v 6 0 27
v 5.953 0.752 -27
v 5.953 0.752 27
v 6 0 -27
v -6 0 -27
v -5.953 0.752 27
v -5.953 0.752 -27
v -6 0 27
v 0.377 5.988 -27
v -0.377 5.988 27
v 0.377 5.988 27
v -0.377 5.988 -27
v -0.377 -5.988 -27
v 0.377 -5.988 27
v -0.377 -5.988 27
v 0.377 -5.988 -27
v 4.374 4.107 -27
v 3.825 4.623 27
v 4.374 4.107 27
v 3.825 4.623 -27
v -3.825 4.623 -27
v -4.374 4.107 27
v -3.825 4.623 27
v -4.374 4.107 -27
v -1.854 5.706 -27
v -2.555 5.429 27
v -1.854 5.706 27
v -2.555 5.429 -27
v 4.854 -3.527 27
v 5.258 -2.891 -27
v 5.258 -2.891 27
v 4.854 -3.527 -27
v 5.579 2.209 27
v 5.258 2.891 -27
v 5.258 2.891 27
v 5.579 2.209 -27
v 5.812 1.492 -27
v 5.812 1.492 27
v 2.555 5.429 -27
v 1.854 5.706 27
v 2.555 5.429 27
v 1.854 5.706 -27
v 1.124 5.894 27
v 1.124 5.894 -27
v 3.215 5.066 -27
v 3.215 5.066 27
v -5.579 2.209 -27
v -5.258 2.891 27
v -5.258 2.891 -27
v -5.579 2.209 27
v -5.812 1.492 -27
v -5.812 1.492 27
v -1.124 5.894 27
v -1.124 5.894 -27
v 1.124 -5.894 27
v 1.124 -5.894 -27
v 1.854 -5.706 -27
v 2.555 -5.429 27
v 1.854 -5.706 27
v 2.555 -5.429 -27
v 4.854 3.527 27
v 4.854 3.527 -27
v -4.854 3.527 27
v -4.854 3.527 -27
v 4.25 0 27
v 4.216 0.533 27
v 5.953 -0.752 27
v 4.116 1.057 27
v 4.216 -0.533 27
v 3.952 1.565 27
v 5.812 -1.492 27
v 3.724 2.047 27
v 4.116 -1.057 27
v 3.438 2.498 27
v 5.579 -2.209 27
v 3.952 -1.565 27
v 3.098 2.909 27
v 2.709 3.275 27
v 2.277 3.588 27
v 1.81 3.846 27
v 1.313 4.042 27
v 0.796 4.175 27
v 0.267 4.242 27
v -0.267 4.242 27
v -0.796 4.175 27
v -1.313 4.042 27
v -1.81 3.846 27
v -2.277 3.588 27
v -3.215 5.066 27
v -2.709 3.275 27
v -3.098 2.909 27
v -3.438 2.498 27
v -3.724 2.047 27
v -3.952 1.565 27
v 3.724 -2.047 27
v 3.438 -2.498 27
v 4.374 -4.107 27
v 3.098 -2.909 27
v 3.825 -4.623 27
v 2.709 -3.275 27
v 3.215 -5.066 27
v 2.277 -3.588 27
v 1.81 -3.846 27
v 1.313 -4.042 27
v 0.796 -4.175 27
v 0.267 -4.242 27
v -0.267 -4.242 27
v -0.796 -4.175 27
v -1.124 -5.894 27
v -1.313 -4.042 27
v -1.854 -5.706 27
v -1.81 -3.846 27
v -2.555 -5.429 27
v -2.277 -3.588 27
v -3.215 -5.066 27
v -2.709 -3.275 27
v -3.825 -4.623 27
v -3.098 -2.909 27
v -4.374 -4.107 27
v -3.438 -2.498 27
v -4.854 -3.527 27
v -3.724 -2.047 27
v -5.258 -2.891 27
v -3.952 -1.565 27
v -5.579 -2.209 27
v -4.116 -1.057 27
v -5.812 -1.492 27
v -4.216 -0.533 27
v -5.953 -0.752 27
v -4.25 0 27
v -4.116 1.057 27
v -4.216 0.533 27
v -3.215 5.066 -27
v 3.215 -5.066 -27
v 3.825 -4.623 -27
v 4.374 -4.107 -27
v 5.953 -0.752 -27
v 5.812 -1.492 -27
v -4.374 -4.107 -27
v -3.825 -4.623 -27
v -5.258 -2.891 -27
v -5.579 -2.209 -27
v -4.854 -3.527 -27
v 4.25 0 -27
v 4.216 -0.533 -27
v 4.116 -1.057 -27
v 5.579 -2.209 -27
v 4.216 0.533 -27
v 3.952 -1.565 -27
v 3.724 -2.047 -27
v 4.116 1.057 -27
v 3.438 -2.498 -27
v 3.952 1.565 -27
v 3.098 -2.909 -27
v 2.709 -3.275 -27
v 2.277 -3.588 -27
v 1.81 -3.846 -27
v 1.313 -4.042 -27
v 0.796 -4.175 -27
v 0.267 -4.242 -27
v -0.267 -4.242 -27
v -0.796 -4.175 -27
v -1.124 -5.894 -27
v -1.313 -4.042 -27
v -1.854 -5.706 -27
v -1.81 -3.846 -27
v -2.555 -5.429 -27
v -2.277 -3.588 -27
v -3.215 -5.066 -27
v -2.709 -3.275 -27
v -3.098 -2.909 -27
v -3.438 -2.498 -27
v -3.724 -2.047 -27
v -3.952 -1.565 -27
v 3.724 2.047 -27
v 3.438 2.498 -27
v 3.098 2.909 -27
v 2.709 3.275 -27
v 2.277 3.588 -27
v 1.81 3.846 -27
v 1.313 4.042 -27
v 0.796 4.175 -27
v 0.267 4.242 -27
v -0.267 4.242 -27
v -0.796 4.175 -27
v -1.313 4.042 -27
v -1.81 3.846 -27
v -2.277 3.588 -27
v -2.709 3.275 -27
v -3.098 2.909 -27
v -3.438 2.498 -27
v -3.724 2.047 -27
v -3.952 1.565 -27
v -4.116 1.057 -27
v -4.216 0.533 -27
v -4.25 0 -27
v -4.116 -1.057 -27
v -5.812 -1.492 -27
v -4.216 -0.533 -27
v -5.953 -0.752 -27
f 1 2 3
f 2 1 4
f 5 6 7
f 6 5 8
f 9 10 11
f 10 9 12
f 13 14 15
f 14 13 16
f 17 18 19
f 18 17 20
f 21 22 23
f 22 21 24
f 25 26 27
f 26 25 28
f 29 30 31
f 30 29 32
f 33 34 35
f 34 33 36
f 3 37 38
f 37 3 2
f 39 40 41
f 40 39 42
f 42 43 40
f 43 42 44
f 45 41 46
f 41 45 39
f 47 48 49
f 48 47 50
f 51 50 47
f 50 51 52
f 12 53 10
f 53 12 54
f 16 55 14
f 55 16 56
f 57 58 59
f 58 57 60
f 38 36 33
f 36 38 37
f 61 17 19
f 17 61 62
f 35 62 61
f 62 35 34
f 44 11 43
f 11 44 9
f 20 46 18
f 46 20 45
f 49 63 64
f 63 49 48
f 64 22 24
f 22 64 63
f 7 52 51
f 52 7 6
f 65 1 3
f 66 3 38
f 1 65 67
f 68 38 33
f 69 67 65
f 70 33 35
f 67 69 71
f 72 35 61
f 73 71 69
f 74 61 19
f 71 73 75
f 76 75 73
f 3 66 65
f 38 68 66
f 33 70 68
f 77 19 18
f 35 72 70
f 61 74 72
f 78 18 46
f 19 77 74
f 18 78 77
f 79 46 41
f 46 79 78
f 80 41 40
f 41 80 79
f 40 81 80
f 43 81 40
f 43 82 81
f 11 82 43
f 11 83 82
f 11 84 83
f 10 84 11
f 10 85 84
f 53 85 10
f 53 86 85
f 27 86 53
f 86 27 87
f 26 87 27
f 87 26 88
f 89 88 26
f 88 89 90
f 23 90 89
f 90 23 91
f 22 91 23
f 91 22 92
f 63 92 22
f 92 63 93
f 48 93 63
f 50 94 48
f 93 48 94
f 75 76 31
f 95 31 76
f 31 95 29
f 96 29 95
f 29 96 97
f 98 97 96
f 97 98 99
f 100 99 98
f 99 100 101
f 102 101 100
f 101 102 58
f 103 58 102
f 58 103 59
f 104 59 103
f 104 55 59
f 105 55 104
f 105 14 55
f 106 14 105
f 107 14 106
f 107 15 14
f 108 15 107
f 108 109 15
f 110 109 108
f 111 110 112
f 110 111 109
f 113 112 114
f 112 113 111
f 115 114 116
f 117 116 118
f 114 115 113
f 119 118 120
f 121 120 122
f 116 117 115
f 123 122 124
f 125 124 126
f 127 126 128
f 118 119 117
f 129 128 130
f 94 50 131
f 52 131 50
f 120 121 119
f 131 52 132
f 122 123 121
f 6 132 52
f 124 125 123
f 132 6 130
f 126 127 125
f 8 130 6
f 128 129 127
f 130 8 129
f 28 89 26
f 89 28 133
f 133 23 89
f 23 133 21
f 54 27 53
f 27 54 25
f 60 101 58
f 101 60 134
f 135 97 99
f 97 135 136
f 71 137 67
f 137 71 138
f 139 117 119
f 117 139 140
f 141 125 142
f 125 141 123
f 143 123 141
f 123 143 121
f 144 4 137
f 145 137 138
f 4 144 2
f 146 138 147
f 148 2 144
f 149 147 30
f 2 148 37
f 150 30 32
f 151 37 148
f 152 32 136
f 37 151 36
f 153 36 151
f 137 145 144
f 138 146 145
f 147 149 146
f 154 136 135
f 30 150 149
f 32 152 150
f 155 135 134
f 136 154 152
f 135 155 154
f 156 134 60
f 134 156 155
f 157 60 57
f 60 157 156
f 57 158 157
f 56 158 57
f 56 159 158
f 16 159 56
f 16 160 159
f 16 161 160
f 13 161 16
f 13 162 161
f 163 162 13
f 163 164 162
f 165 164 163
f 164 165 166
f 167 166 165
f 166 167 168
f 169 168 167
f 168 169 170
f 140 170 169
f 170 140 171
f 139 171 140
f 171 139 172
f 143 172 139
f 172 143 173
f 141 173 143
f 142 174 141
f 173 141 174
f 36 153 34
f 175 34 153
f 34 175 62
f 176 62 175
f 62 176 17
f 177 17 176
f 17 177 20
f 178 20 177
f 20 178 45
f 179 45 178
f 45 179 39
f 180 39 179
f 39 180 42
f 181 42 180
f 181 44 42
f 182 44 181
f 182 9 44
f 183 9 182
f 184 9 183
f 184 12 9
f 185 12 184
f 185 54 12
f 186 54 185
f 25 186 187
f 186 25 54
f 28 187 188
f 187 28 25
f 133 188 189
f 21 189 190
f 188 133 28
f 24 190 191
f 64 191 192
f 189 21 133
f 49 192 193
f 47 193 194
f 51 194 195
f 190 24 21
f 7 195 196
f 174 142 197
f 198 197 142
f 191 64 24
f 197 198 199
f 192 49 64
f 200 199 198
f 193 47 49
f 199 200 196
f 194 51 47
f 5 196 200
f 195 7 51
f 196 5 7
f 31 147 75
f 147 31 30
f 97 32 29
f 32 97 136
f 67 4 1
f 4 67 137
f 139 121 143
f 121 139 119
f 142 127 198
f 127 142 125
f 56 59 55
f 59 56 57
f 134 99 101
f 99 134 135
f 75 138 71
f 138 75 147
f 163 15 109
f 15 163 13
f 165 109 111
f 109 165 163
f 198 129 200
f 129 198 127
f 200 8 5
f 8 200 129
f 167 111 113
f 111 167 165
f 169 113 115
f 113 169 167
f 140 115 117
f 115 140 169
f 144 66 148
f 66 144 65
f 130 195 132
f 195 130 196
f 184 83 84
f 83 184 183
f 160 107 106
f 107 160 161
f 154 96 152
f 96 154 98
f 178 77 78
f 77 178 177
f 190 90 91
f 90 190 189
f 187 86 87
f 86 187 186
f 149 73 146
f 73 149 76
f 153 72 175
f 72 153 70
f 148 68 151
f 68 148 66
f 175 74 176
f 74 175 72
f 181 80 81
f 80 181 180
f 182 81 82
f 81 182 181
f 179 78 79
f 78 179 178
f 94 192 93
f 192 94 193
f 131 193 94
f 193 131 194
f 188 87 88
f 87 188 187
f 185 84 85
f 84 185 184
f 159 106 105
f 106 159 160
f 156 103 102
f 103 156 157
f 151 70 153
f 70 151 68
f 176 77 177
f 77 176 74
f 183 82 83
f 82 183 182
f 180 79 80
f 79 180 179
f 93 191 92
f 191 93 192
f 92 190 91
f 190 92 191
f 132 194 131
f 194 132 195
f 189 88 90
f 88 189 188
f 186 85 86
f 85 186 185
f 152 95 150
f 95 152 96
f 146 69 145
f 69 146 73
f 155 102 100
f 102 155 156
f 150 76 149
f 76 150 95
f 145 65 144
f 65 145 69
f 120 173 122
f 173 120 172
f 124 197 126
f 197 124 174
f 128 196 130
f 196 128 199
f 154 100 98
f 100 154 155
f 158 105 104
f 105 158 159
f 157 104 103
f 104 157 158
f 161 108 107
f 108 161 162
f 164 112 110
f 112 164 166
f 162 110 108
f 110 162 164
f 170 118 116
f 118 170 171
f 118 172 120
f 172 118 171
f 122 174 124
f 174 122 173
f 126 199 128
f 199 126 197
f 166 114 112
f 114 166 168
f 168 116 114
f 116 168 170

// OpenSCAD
$fn = 50;


difference() {
	union() {
		translate(v = [0, 0, -27.0000000000]) {
			cylinder(h = 54, r = 6.0000000000);
		}
	}
	union() {
		translate(v = [0, 0, -100.0000000000]) {
			cylinder(h = 200, r = 4.2500000000);
		}
	}
}
